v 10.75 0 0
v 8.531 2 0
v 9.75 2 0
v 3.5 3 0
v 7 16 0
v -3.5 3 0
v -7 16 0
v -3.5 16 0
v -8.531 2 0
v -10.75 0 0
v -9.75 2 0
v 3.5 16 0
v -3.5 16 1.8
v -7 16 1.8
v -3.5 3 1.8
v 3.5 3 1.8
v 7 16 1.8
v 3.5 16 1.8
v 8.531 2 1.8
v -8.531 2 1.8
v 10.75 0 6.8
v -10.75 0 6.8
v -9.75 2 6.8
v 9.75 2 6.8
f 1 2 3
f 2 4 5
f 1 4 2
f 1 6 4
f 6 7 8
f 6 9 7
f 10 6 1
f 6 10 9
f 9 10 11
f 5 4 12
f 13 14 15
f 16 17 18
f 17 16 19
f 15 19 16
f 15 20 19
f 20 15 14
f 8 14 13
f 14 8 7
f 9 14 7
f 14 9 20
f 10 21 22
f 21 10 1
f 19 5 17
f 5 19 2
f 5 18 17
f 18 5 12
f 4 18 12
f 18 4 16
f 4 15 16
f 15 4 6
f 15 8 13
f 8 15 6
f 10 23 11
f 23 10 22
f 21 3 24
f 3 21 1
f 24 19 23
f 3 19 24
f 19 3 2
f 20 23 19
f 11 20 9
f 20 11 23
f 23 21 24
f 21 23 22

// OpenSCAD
baseWidth = 17.5;
footWidth = baseWidth +2*2;
vertexWidth = 14;
notchWidth = 7;

bridgeHeight = 3;
armHeight = 16;
armDepth = 1.8;

footHeight = 2;
footDepth = 6.8;

armPoints = [
  [0,0], [baseWidth/2, 0],
  [vertexWidth/2, armHeight], [notchWidth/2, armHeight],
  [notchWidth/2, bridgeHeight], [0, bridgeHeight]
];

footPoints = [
  [0, 0], [footWidth/2, 0],
  [footWidth/2-1, footHeight], [0, footHeight]
];


color("red")
union() {
  linear_extrude(height = armDepth) {
   polygon(points=armPoints);
   mirror() polygon(points=armPoints);
  }
  linear_extrude(height = footDepth) {
   polygon(points=footPoints);
   mirror() polygon(points=footPoints);
  }
}
